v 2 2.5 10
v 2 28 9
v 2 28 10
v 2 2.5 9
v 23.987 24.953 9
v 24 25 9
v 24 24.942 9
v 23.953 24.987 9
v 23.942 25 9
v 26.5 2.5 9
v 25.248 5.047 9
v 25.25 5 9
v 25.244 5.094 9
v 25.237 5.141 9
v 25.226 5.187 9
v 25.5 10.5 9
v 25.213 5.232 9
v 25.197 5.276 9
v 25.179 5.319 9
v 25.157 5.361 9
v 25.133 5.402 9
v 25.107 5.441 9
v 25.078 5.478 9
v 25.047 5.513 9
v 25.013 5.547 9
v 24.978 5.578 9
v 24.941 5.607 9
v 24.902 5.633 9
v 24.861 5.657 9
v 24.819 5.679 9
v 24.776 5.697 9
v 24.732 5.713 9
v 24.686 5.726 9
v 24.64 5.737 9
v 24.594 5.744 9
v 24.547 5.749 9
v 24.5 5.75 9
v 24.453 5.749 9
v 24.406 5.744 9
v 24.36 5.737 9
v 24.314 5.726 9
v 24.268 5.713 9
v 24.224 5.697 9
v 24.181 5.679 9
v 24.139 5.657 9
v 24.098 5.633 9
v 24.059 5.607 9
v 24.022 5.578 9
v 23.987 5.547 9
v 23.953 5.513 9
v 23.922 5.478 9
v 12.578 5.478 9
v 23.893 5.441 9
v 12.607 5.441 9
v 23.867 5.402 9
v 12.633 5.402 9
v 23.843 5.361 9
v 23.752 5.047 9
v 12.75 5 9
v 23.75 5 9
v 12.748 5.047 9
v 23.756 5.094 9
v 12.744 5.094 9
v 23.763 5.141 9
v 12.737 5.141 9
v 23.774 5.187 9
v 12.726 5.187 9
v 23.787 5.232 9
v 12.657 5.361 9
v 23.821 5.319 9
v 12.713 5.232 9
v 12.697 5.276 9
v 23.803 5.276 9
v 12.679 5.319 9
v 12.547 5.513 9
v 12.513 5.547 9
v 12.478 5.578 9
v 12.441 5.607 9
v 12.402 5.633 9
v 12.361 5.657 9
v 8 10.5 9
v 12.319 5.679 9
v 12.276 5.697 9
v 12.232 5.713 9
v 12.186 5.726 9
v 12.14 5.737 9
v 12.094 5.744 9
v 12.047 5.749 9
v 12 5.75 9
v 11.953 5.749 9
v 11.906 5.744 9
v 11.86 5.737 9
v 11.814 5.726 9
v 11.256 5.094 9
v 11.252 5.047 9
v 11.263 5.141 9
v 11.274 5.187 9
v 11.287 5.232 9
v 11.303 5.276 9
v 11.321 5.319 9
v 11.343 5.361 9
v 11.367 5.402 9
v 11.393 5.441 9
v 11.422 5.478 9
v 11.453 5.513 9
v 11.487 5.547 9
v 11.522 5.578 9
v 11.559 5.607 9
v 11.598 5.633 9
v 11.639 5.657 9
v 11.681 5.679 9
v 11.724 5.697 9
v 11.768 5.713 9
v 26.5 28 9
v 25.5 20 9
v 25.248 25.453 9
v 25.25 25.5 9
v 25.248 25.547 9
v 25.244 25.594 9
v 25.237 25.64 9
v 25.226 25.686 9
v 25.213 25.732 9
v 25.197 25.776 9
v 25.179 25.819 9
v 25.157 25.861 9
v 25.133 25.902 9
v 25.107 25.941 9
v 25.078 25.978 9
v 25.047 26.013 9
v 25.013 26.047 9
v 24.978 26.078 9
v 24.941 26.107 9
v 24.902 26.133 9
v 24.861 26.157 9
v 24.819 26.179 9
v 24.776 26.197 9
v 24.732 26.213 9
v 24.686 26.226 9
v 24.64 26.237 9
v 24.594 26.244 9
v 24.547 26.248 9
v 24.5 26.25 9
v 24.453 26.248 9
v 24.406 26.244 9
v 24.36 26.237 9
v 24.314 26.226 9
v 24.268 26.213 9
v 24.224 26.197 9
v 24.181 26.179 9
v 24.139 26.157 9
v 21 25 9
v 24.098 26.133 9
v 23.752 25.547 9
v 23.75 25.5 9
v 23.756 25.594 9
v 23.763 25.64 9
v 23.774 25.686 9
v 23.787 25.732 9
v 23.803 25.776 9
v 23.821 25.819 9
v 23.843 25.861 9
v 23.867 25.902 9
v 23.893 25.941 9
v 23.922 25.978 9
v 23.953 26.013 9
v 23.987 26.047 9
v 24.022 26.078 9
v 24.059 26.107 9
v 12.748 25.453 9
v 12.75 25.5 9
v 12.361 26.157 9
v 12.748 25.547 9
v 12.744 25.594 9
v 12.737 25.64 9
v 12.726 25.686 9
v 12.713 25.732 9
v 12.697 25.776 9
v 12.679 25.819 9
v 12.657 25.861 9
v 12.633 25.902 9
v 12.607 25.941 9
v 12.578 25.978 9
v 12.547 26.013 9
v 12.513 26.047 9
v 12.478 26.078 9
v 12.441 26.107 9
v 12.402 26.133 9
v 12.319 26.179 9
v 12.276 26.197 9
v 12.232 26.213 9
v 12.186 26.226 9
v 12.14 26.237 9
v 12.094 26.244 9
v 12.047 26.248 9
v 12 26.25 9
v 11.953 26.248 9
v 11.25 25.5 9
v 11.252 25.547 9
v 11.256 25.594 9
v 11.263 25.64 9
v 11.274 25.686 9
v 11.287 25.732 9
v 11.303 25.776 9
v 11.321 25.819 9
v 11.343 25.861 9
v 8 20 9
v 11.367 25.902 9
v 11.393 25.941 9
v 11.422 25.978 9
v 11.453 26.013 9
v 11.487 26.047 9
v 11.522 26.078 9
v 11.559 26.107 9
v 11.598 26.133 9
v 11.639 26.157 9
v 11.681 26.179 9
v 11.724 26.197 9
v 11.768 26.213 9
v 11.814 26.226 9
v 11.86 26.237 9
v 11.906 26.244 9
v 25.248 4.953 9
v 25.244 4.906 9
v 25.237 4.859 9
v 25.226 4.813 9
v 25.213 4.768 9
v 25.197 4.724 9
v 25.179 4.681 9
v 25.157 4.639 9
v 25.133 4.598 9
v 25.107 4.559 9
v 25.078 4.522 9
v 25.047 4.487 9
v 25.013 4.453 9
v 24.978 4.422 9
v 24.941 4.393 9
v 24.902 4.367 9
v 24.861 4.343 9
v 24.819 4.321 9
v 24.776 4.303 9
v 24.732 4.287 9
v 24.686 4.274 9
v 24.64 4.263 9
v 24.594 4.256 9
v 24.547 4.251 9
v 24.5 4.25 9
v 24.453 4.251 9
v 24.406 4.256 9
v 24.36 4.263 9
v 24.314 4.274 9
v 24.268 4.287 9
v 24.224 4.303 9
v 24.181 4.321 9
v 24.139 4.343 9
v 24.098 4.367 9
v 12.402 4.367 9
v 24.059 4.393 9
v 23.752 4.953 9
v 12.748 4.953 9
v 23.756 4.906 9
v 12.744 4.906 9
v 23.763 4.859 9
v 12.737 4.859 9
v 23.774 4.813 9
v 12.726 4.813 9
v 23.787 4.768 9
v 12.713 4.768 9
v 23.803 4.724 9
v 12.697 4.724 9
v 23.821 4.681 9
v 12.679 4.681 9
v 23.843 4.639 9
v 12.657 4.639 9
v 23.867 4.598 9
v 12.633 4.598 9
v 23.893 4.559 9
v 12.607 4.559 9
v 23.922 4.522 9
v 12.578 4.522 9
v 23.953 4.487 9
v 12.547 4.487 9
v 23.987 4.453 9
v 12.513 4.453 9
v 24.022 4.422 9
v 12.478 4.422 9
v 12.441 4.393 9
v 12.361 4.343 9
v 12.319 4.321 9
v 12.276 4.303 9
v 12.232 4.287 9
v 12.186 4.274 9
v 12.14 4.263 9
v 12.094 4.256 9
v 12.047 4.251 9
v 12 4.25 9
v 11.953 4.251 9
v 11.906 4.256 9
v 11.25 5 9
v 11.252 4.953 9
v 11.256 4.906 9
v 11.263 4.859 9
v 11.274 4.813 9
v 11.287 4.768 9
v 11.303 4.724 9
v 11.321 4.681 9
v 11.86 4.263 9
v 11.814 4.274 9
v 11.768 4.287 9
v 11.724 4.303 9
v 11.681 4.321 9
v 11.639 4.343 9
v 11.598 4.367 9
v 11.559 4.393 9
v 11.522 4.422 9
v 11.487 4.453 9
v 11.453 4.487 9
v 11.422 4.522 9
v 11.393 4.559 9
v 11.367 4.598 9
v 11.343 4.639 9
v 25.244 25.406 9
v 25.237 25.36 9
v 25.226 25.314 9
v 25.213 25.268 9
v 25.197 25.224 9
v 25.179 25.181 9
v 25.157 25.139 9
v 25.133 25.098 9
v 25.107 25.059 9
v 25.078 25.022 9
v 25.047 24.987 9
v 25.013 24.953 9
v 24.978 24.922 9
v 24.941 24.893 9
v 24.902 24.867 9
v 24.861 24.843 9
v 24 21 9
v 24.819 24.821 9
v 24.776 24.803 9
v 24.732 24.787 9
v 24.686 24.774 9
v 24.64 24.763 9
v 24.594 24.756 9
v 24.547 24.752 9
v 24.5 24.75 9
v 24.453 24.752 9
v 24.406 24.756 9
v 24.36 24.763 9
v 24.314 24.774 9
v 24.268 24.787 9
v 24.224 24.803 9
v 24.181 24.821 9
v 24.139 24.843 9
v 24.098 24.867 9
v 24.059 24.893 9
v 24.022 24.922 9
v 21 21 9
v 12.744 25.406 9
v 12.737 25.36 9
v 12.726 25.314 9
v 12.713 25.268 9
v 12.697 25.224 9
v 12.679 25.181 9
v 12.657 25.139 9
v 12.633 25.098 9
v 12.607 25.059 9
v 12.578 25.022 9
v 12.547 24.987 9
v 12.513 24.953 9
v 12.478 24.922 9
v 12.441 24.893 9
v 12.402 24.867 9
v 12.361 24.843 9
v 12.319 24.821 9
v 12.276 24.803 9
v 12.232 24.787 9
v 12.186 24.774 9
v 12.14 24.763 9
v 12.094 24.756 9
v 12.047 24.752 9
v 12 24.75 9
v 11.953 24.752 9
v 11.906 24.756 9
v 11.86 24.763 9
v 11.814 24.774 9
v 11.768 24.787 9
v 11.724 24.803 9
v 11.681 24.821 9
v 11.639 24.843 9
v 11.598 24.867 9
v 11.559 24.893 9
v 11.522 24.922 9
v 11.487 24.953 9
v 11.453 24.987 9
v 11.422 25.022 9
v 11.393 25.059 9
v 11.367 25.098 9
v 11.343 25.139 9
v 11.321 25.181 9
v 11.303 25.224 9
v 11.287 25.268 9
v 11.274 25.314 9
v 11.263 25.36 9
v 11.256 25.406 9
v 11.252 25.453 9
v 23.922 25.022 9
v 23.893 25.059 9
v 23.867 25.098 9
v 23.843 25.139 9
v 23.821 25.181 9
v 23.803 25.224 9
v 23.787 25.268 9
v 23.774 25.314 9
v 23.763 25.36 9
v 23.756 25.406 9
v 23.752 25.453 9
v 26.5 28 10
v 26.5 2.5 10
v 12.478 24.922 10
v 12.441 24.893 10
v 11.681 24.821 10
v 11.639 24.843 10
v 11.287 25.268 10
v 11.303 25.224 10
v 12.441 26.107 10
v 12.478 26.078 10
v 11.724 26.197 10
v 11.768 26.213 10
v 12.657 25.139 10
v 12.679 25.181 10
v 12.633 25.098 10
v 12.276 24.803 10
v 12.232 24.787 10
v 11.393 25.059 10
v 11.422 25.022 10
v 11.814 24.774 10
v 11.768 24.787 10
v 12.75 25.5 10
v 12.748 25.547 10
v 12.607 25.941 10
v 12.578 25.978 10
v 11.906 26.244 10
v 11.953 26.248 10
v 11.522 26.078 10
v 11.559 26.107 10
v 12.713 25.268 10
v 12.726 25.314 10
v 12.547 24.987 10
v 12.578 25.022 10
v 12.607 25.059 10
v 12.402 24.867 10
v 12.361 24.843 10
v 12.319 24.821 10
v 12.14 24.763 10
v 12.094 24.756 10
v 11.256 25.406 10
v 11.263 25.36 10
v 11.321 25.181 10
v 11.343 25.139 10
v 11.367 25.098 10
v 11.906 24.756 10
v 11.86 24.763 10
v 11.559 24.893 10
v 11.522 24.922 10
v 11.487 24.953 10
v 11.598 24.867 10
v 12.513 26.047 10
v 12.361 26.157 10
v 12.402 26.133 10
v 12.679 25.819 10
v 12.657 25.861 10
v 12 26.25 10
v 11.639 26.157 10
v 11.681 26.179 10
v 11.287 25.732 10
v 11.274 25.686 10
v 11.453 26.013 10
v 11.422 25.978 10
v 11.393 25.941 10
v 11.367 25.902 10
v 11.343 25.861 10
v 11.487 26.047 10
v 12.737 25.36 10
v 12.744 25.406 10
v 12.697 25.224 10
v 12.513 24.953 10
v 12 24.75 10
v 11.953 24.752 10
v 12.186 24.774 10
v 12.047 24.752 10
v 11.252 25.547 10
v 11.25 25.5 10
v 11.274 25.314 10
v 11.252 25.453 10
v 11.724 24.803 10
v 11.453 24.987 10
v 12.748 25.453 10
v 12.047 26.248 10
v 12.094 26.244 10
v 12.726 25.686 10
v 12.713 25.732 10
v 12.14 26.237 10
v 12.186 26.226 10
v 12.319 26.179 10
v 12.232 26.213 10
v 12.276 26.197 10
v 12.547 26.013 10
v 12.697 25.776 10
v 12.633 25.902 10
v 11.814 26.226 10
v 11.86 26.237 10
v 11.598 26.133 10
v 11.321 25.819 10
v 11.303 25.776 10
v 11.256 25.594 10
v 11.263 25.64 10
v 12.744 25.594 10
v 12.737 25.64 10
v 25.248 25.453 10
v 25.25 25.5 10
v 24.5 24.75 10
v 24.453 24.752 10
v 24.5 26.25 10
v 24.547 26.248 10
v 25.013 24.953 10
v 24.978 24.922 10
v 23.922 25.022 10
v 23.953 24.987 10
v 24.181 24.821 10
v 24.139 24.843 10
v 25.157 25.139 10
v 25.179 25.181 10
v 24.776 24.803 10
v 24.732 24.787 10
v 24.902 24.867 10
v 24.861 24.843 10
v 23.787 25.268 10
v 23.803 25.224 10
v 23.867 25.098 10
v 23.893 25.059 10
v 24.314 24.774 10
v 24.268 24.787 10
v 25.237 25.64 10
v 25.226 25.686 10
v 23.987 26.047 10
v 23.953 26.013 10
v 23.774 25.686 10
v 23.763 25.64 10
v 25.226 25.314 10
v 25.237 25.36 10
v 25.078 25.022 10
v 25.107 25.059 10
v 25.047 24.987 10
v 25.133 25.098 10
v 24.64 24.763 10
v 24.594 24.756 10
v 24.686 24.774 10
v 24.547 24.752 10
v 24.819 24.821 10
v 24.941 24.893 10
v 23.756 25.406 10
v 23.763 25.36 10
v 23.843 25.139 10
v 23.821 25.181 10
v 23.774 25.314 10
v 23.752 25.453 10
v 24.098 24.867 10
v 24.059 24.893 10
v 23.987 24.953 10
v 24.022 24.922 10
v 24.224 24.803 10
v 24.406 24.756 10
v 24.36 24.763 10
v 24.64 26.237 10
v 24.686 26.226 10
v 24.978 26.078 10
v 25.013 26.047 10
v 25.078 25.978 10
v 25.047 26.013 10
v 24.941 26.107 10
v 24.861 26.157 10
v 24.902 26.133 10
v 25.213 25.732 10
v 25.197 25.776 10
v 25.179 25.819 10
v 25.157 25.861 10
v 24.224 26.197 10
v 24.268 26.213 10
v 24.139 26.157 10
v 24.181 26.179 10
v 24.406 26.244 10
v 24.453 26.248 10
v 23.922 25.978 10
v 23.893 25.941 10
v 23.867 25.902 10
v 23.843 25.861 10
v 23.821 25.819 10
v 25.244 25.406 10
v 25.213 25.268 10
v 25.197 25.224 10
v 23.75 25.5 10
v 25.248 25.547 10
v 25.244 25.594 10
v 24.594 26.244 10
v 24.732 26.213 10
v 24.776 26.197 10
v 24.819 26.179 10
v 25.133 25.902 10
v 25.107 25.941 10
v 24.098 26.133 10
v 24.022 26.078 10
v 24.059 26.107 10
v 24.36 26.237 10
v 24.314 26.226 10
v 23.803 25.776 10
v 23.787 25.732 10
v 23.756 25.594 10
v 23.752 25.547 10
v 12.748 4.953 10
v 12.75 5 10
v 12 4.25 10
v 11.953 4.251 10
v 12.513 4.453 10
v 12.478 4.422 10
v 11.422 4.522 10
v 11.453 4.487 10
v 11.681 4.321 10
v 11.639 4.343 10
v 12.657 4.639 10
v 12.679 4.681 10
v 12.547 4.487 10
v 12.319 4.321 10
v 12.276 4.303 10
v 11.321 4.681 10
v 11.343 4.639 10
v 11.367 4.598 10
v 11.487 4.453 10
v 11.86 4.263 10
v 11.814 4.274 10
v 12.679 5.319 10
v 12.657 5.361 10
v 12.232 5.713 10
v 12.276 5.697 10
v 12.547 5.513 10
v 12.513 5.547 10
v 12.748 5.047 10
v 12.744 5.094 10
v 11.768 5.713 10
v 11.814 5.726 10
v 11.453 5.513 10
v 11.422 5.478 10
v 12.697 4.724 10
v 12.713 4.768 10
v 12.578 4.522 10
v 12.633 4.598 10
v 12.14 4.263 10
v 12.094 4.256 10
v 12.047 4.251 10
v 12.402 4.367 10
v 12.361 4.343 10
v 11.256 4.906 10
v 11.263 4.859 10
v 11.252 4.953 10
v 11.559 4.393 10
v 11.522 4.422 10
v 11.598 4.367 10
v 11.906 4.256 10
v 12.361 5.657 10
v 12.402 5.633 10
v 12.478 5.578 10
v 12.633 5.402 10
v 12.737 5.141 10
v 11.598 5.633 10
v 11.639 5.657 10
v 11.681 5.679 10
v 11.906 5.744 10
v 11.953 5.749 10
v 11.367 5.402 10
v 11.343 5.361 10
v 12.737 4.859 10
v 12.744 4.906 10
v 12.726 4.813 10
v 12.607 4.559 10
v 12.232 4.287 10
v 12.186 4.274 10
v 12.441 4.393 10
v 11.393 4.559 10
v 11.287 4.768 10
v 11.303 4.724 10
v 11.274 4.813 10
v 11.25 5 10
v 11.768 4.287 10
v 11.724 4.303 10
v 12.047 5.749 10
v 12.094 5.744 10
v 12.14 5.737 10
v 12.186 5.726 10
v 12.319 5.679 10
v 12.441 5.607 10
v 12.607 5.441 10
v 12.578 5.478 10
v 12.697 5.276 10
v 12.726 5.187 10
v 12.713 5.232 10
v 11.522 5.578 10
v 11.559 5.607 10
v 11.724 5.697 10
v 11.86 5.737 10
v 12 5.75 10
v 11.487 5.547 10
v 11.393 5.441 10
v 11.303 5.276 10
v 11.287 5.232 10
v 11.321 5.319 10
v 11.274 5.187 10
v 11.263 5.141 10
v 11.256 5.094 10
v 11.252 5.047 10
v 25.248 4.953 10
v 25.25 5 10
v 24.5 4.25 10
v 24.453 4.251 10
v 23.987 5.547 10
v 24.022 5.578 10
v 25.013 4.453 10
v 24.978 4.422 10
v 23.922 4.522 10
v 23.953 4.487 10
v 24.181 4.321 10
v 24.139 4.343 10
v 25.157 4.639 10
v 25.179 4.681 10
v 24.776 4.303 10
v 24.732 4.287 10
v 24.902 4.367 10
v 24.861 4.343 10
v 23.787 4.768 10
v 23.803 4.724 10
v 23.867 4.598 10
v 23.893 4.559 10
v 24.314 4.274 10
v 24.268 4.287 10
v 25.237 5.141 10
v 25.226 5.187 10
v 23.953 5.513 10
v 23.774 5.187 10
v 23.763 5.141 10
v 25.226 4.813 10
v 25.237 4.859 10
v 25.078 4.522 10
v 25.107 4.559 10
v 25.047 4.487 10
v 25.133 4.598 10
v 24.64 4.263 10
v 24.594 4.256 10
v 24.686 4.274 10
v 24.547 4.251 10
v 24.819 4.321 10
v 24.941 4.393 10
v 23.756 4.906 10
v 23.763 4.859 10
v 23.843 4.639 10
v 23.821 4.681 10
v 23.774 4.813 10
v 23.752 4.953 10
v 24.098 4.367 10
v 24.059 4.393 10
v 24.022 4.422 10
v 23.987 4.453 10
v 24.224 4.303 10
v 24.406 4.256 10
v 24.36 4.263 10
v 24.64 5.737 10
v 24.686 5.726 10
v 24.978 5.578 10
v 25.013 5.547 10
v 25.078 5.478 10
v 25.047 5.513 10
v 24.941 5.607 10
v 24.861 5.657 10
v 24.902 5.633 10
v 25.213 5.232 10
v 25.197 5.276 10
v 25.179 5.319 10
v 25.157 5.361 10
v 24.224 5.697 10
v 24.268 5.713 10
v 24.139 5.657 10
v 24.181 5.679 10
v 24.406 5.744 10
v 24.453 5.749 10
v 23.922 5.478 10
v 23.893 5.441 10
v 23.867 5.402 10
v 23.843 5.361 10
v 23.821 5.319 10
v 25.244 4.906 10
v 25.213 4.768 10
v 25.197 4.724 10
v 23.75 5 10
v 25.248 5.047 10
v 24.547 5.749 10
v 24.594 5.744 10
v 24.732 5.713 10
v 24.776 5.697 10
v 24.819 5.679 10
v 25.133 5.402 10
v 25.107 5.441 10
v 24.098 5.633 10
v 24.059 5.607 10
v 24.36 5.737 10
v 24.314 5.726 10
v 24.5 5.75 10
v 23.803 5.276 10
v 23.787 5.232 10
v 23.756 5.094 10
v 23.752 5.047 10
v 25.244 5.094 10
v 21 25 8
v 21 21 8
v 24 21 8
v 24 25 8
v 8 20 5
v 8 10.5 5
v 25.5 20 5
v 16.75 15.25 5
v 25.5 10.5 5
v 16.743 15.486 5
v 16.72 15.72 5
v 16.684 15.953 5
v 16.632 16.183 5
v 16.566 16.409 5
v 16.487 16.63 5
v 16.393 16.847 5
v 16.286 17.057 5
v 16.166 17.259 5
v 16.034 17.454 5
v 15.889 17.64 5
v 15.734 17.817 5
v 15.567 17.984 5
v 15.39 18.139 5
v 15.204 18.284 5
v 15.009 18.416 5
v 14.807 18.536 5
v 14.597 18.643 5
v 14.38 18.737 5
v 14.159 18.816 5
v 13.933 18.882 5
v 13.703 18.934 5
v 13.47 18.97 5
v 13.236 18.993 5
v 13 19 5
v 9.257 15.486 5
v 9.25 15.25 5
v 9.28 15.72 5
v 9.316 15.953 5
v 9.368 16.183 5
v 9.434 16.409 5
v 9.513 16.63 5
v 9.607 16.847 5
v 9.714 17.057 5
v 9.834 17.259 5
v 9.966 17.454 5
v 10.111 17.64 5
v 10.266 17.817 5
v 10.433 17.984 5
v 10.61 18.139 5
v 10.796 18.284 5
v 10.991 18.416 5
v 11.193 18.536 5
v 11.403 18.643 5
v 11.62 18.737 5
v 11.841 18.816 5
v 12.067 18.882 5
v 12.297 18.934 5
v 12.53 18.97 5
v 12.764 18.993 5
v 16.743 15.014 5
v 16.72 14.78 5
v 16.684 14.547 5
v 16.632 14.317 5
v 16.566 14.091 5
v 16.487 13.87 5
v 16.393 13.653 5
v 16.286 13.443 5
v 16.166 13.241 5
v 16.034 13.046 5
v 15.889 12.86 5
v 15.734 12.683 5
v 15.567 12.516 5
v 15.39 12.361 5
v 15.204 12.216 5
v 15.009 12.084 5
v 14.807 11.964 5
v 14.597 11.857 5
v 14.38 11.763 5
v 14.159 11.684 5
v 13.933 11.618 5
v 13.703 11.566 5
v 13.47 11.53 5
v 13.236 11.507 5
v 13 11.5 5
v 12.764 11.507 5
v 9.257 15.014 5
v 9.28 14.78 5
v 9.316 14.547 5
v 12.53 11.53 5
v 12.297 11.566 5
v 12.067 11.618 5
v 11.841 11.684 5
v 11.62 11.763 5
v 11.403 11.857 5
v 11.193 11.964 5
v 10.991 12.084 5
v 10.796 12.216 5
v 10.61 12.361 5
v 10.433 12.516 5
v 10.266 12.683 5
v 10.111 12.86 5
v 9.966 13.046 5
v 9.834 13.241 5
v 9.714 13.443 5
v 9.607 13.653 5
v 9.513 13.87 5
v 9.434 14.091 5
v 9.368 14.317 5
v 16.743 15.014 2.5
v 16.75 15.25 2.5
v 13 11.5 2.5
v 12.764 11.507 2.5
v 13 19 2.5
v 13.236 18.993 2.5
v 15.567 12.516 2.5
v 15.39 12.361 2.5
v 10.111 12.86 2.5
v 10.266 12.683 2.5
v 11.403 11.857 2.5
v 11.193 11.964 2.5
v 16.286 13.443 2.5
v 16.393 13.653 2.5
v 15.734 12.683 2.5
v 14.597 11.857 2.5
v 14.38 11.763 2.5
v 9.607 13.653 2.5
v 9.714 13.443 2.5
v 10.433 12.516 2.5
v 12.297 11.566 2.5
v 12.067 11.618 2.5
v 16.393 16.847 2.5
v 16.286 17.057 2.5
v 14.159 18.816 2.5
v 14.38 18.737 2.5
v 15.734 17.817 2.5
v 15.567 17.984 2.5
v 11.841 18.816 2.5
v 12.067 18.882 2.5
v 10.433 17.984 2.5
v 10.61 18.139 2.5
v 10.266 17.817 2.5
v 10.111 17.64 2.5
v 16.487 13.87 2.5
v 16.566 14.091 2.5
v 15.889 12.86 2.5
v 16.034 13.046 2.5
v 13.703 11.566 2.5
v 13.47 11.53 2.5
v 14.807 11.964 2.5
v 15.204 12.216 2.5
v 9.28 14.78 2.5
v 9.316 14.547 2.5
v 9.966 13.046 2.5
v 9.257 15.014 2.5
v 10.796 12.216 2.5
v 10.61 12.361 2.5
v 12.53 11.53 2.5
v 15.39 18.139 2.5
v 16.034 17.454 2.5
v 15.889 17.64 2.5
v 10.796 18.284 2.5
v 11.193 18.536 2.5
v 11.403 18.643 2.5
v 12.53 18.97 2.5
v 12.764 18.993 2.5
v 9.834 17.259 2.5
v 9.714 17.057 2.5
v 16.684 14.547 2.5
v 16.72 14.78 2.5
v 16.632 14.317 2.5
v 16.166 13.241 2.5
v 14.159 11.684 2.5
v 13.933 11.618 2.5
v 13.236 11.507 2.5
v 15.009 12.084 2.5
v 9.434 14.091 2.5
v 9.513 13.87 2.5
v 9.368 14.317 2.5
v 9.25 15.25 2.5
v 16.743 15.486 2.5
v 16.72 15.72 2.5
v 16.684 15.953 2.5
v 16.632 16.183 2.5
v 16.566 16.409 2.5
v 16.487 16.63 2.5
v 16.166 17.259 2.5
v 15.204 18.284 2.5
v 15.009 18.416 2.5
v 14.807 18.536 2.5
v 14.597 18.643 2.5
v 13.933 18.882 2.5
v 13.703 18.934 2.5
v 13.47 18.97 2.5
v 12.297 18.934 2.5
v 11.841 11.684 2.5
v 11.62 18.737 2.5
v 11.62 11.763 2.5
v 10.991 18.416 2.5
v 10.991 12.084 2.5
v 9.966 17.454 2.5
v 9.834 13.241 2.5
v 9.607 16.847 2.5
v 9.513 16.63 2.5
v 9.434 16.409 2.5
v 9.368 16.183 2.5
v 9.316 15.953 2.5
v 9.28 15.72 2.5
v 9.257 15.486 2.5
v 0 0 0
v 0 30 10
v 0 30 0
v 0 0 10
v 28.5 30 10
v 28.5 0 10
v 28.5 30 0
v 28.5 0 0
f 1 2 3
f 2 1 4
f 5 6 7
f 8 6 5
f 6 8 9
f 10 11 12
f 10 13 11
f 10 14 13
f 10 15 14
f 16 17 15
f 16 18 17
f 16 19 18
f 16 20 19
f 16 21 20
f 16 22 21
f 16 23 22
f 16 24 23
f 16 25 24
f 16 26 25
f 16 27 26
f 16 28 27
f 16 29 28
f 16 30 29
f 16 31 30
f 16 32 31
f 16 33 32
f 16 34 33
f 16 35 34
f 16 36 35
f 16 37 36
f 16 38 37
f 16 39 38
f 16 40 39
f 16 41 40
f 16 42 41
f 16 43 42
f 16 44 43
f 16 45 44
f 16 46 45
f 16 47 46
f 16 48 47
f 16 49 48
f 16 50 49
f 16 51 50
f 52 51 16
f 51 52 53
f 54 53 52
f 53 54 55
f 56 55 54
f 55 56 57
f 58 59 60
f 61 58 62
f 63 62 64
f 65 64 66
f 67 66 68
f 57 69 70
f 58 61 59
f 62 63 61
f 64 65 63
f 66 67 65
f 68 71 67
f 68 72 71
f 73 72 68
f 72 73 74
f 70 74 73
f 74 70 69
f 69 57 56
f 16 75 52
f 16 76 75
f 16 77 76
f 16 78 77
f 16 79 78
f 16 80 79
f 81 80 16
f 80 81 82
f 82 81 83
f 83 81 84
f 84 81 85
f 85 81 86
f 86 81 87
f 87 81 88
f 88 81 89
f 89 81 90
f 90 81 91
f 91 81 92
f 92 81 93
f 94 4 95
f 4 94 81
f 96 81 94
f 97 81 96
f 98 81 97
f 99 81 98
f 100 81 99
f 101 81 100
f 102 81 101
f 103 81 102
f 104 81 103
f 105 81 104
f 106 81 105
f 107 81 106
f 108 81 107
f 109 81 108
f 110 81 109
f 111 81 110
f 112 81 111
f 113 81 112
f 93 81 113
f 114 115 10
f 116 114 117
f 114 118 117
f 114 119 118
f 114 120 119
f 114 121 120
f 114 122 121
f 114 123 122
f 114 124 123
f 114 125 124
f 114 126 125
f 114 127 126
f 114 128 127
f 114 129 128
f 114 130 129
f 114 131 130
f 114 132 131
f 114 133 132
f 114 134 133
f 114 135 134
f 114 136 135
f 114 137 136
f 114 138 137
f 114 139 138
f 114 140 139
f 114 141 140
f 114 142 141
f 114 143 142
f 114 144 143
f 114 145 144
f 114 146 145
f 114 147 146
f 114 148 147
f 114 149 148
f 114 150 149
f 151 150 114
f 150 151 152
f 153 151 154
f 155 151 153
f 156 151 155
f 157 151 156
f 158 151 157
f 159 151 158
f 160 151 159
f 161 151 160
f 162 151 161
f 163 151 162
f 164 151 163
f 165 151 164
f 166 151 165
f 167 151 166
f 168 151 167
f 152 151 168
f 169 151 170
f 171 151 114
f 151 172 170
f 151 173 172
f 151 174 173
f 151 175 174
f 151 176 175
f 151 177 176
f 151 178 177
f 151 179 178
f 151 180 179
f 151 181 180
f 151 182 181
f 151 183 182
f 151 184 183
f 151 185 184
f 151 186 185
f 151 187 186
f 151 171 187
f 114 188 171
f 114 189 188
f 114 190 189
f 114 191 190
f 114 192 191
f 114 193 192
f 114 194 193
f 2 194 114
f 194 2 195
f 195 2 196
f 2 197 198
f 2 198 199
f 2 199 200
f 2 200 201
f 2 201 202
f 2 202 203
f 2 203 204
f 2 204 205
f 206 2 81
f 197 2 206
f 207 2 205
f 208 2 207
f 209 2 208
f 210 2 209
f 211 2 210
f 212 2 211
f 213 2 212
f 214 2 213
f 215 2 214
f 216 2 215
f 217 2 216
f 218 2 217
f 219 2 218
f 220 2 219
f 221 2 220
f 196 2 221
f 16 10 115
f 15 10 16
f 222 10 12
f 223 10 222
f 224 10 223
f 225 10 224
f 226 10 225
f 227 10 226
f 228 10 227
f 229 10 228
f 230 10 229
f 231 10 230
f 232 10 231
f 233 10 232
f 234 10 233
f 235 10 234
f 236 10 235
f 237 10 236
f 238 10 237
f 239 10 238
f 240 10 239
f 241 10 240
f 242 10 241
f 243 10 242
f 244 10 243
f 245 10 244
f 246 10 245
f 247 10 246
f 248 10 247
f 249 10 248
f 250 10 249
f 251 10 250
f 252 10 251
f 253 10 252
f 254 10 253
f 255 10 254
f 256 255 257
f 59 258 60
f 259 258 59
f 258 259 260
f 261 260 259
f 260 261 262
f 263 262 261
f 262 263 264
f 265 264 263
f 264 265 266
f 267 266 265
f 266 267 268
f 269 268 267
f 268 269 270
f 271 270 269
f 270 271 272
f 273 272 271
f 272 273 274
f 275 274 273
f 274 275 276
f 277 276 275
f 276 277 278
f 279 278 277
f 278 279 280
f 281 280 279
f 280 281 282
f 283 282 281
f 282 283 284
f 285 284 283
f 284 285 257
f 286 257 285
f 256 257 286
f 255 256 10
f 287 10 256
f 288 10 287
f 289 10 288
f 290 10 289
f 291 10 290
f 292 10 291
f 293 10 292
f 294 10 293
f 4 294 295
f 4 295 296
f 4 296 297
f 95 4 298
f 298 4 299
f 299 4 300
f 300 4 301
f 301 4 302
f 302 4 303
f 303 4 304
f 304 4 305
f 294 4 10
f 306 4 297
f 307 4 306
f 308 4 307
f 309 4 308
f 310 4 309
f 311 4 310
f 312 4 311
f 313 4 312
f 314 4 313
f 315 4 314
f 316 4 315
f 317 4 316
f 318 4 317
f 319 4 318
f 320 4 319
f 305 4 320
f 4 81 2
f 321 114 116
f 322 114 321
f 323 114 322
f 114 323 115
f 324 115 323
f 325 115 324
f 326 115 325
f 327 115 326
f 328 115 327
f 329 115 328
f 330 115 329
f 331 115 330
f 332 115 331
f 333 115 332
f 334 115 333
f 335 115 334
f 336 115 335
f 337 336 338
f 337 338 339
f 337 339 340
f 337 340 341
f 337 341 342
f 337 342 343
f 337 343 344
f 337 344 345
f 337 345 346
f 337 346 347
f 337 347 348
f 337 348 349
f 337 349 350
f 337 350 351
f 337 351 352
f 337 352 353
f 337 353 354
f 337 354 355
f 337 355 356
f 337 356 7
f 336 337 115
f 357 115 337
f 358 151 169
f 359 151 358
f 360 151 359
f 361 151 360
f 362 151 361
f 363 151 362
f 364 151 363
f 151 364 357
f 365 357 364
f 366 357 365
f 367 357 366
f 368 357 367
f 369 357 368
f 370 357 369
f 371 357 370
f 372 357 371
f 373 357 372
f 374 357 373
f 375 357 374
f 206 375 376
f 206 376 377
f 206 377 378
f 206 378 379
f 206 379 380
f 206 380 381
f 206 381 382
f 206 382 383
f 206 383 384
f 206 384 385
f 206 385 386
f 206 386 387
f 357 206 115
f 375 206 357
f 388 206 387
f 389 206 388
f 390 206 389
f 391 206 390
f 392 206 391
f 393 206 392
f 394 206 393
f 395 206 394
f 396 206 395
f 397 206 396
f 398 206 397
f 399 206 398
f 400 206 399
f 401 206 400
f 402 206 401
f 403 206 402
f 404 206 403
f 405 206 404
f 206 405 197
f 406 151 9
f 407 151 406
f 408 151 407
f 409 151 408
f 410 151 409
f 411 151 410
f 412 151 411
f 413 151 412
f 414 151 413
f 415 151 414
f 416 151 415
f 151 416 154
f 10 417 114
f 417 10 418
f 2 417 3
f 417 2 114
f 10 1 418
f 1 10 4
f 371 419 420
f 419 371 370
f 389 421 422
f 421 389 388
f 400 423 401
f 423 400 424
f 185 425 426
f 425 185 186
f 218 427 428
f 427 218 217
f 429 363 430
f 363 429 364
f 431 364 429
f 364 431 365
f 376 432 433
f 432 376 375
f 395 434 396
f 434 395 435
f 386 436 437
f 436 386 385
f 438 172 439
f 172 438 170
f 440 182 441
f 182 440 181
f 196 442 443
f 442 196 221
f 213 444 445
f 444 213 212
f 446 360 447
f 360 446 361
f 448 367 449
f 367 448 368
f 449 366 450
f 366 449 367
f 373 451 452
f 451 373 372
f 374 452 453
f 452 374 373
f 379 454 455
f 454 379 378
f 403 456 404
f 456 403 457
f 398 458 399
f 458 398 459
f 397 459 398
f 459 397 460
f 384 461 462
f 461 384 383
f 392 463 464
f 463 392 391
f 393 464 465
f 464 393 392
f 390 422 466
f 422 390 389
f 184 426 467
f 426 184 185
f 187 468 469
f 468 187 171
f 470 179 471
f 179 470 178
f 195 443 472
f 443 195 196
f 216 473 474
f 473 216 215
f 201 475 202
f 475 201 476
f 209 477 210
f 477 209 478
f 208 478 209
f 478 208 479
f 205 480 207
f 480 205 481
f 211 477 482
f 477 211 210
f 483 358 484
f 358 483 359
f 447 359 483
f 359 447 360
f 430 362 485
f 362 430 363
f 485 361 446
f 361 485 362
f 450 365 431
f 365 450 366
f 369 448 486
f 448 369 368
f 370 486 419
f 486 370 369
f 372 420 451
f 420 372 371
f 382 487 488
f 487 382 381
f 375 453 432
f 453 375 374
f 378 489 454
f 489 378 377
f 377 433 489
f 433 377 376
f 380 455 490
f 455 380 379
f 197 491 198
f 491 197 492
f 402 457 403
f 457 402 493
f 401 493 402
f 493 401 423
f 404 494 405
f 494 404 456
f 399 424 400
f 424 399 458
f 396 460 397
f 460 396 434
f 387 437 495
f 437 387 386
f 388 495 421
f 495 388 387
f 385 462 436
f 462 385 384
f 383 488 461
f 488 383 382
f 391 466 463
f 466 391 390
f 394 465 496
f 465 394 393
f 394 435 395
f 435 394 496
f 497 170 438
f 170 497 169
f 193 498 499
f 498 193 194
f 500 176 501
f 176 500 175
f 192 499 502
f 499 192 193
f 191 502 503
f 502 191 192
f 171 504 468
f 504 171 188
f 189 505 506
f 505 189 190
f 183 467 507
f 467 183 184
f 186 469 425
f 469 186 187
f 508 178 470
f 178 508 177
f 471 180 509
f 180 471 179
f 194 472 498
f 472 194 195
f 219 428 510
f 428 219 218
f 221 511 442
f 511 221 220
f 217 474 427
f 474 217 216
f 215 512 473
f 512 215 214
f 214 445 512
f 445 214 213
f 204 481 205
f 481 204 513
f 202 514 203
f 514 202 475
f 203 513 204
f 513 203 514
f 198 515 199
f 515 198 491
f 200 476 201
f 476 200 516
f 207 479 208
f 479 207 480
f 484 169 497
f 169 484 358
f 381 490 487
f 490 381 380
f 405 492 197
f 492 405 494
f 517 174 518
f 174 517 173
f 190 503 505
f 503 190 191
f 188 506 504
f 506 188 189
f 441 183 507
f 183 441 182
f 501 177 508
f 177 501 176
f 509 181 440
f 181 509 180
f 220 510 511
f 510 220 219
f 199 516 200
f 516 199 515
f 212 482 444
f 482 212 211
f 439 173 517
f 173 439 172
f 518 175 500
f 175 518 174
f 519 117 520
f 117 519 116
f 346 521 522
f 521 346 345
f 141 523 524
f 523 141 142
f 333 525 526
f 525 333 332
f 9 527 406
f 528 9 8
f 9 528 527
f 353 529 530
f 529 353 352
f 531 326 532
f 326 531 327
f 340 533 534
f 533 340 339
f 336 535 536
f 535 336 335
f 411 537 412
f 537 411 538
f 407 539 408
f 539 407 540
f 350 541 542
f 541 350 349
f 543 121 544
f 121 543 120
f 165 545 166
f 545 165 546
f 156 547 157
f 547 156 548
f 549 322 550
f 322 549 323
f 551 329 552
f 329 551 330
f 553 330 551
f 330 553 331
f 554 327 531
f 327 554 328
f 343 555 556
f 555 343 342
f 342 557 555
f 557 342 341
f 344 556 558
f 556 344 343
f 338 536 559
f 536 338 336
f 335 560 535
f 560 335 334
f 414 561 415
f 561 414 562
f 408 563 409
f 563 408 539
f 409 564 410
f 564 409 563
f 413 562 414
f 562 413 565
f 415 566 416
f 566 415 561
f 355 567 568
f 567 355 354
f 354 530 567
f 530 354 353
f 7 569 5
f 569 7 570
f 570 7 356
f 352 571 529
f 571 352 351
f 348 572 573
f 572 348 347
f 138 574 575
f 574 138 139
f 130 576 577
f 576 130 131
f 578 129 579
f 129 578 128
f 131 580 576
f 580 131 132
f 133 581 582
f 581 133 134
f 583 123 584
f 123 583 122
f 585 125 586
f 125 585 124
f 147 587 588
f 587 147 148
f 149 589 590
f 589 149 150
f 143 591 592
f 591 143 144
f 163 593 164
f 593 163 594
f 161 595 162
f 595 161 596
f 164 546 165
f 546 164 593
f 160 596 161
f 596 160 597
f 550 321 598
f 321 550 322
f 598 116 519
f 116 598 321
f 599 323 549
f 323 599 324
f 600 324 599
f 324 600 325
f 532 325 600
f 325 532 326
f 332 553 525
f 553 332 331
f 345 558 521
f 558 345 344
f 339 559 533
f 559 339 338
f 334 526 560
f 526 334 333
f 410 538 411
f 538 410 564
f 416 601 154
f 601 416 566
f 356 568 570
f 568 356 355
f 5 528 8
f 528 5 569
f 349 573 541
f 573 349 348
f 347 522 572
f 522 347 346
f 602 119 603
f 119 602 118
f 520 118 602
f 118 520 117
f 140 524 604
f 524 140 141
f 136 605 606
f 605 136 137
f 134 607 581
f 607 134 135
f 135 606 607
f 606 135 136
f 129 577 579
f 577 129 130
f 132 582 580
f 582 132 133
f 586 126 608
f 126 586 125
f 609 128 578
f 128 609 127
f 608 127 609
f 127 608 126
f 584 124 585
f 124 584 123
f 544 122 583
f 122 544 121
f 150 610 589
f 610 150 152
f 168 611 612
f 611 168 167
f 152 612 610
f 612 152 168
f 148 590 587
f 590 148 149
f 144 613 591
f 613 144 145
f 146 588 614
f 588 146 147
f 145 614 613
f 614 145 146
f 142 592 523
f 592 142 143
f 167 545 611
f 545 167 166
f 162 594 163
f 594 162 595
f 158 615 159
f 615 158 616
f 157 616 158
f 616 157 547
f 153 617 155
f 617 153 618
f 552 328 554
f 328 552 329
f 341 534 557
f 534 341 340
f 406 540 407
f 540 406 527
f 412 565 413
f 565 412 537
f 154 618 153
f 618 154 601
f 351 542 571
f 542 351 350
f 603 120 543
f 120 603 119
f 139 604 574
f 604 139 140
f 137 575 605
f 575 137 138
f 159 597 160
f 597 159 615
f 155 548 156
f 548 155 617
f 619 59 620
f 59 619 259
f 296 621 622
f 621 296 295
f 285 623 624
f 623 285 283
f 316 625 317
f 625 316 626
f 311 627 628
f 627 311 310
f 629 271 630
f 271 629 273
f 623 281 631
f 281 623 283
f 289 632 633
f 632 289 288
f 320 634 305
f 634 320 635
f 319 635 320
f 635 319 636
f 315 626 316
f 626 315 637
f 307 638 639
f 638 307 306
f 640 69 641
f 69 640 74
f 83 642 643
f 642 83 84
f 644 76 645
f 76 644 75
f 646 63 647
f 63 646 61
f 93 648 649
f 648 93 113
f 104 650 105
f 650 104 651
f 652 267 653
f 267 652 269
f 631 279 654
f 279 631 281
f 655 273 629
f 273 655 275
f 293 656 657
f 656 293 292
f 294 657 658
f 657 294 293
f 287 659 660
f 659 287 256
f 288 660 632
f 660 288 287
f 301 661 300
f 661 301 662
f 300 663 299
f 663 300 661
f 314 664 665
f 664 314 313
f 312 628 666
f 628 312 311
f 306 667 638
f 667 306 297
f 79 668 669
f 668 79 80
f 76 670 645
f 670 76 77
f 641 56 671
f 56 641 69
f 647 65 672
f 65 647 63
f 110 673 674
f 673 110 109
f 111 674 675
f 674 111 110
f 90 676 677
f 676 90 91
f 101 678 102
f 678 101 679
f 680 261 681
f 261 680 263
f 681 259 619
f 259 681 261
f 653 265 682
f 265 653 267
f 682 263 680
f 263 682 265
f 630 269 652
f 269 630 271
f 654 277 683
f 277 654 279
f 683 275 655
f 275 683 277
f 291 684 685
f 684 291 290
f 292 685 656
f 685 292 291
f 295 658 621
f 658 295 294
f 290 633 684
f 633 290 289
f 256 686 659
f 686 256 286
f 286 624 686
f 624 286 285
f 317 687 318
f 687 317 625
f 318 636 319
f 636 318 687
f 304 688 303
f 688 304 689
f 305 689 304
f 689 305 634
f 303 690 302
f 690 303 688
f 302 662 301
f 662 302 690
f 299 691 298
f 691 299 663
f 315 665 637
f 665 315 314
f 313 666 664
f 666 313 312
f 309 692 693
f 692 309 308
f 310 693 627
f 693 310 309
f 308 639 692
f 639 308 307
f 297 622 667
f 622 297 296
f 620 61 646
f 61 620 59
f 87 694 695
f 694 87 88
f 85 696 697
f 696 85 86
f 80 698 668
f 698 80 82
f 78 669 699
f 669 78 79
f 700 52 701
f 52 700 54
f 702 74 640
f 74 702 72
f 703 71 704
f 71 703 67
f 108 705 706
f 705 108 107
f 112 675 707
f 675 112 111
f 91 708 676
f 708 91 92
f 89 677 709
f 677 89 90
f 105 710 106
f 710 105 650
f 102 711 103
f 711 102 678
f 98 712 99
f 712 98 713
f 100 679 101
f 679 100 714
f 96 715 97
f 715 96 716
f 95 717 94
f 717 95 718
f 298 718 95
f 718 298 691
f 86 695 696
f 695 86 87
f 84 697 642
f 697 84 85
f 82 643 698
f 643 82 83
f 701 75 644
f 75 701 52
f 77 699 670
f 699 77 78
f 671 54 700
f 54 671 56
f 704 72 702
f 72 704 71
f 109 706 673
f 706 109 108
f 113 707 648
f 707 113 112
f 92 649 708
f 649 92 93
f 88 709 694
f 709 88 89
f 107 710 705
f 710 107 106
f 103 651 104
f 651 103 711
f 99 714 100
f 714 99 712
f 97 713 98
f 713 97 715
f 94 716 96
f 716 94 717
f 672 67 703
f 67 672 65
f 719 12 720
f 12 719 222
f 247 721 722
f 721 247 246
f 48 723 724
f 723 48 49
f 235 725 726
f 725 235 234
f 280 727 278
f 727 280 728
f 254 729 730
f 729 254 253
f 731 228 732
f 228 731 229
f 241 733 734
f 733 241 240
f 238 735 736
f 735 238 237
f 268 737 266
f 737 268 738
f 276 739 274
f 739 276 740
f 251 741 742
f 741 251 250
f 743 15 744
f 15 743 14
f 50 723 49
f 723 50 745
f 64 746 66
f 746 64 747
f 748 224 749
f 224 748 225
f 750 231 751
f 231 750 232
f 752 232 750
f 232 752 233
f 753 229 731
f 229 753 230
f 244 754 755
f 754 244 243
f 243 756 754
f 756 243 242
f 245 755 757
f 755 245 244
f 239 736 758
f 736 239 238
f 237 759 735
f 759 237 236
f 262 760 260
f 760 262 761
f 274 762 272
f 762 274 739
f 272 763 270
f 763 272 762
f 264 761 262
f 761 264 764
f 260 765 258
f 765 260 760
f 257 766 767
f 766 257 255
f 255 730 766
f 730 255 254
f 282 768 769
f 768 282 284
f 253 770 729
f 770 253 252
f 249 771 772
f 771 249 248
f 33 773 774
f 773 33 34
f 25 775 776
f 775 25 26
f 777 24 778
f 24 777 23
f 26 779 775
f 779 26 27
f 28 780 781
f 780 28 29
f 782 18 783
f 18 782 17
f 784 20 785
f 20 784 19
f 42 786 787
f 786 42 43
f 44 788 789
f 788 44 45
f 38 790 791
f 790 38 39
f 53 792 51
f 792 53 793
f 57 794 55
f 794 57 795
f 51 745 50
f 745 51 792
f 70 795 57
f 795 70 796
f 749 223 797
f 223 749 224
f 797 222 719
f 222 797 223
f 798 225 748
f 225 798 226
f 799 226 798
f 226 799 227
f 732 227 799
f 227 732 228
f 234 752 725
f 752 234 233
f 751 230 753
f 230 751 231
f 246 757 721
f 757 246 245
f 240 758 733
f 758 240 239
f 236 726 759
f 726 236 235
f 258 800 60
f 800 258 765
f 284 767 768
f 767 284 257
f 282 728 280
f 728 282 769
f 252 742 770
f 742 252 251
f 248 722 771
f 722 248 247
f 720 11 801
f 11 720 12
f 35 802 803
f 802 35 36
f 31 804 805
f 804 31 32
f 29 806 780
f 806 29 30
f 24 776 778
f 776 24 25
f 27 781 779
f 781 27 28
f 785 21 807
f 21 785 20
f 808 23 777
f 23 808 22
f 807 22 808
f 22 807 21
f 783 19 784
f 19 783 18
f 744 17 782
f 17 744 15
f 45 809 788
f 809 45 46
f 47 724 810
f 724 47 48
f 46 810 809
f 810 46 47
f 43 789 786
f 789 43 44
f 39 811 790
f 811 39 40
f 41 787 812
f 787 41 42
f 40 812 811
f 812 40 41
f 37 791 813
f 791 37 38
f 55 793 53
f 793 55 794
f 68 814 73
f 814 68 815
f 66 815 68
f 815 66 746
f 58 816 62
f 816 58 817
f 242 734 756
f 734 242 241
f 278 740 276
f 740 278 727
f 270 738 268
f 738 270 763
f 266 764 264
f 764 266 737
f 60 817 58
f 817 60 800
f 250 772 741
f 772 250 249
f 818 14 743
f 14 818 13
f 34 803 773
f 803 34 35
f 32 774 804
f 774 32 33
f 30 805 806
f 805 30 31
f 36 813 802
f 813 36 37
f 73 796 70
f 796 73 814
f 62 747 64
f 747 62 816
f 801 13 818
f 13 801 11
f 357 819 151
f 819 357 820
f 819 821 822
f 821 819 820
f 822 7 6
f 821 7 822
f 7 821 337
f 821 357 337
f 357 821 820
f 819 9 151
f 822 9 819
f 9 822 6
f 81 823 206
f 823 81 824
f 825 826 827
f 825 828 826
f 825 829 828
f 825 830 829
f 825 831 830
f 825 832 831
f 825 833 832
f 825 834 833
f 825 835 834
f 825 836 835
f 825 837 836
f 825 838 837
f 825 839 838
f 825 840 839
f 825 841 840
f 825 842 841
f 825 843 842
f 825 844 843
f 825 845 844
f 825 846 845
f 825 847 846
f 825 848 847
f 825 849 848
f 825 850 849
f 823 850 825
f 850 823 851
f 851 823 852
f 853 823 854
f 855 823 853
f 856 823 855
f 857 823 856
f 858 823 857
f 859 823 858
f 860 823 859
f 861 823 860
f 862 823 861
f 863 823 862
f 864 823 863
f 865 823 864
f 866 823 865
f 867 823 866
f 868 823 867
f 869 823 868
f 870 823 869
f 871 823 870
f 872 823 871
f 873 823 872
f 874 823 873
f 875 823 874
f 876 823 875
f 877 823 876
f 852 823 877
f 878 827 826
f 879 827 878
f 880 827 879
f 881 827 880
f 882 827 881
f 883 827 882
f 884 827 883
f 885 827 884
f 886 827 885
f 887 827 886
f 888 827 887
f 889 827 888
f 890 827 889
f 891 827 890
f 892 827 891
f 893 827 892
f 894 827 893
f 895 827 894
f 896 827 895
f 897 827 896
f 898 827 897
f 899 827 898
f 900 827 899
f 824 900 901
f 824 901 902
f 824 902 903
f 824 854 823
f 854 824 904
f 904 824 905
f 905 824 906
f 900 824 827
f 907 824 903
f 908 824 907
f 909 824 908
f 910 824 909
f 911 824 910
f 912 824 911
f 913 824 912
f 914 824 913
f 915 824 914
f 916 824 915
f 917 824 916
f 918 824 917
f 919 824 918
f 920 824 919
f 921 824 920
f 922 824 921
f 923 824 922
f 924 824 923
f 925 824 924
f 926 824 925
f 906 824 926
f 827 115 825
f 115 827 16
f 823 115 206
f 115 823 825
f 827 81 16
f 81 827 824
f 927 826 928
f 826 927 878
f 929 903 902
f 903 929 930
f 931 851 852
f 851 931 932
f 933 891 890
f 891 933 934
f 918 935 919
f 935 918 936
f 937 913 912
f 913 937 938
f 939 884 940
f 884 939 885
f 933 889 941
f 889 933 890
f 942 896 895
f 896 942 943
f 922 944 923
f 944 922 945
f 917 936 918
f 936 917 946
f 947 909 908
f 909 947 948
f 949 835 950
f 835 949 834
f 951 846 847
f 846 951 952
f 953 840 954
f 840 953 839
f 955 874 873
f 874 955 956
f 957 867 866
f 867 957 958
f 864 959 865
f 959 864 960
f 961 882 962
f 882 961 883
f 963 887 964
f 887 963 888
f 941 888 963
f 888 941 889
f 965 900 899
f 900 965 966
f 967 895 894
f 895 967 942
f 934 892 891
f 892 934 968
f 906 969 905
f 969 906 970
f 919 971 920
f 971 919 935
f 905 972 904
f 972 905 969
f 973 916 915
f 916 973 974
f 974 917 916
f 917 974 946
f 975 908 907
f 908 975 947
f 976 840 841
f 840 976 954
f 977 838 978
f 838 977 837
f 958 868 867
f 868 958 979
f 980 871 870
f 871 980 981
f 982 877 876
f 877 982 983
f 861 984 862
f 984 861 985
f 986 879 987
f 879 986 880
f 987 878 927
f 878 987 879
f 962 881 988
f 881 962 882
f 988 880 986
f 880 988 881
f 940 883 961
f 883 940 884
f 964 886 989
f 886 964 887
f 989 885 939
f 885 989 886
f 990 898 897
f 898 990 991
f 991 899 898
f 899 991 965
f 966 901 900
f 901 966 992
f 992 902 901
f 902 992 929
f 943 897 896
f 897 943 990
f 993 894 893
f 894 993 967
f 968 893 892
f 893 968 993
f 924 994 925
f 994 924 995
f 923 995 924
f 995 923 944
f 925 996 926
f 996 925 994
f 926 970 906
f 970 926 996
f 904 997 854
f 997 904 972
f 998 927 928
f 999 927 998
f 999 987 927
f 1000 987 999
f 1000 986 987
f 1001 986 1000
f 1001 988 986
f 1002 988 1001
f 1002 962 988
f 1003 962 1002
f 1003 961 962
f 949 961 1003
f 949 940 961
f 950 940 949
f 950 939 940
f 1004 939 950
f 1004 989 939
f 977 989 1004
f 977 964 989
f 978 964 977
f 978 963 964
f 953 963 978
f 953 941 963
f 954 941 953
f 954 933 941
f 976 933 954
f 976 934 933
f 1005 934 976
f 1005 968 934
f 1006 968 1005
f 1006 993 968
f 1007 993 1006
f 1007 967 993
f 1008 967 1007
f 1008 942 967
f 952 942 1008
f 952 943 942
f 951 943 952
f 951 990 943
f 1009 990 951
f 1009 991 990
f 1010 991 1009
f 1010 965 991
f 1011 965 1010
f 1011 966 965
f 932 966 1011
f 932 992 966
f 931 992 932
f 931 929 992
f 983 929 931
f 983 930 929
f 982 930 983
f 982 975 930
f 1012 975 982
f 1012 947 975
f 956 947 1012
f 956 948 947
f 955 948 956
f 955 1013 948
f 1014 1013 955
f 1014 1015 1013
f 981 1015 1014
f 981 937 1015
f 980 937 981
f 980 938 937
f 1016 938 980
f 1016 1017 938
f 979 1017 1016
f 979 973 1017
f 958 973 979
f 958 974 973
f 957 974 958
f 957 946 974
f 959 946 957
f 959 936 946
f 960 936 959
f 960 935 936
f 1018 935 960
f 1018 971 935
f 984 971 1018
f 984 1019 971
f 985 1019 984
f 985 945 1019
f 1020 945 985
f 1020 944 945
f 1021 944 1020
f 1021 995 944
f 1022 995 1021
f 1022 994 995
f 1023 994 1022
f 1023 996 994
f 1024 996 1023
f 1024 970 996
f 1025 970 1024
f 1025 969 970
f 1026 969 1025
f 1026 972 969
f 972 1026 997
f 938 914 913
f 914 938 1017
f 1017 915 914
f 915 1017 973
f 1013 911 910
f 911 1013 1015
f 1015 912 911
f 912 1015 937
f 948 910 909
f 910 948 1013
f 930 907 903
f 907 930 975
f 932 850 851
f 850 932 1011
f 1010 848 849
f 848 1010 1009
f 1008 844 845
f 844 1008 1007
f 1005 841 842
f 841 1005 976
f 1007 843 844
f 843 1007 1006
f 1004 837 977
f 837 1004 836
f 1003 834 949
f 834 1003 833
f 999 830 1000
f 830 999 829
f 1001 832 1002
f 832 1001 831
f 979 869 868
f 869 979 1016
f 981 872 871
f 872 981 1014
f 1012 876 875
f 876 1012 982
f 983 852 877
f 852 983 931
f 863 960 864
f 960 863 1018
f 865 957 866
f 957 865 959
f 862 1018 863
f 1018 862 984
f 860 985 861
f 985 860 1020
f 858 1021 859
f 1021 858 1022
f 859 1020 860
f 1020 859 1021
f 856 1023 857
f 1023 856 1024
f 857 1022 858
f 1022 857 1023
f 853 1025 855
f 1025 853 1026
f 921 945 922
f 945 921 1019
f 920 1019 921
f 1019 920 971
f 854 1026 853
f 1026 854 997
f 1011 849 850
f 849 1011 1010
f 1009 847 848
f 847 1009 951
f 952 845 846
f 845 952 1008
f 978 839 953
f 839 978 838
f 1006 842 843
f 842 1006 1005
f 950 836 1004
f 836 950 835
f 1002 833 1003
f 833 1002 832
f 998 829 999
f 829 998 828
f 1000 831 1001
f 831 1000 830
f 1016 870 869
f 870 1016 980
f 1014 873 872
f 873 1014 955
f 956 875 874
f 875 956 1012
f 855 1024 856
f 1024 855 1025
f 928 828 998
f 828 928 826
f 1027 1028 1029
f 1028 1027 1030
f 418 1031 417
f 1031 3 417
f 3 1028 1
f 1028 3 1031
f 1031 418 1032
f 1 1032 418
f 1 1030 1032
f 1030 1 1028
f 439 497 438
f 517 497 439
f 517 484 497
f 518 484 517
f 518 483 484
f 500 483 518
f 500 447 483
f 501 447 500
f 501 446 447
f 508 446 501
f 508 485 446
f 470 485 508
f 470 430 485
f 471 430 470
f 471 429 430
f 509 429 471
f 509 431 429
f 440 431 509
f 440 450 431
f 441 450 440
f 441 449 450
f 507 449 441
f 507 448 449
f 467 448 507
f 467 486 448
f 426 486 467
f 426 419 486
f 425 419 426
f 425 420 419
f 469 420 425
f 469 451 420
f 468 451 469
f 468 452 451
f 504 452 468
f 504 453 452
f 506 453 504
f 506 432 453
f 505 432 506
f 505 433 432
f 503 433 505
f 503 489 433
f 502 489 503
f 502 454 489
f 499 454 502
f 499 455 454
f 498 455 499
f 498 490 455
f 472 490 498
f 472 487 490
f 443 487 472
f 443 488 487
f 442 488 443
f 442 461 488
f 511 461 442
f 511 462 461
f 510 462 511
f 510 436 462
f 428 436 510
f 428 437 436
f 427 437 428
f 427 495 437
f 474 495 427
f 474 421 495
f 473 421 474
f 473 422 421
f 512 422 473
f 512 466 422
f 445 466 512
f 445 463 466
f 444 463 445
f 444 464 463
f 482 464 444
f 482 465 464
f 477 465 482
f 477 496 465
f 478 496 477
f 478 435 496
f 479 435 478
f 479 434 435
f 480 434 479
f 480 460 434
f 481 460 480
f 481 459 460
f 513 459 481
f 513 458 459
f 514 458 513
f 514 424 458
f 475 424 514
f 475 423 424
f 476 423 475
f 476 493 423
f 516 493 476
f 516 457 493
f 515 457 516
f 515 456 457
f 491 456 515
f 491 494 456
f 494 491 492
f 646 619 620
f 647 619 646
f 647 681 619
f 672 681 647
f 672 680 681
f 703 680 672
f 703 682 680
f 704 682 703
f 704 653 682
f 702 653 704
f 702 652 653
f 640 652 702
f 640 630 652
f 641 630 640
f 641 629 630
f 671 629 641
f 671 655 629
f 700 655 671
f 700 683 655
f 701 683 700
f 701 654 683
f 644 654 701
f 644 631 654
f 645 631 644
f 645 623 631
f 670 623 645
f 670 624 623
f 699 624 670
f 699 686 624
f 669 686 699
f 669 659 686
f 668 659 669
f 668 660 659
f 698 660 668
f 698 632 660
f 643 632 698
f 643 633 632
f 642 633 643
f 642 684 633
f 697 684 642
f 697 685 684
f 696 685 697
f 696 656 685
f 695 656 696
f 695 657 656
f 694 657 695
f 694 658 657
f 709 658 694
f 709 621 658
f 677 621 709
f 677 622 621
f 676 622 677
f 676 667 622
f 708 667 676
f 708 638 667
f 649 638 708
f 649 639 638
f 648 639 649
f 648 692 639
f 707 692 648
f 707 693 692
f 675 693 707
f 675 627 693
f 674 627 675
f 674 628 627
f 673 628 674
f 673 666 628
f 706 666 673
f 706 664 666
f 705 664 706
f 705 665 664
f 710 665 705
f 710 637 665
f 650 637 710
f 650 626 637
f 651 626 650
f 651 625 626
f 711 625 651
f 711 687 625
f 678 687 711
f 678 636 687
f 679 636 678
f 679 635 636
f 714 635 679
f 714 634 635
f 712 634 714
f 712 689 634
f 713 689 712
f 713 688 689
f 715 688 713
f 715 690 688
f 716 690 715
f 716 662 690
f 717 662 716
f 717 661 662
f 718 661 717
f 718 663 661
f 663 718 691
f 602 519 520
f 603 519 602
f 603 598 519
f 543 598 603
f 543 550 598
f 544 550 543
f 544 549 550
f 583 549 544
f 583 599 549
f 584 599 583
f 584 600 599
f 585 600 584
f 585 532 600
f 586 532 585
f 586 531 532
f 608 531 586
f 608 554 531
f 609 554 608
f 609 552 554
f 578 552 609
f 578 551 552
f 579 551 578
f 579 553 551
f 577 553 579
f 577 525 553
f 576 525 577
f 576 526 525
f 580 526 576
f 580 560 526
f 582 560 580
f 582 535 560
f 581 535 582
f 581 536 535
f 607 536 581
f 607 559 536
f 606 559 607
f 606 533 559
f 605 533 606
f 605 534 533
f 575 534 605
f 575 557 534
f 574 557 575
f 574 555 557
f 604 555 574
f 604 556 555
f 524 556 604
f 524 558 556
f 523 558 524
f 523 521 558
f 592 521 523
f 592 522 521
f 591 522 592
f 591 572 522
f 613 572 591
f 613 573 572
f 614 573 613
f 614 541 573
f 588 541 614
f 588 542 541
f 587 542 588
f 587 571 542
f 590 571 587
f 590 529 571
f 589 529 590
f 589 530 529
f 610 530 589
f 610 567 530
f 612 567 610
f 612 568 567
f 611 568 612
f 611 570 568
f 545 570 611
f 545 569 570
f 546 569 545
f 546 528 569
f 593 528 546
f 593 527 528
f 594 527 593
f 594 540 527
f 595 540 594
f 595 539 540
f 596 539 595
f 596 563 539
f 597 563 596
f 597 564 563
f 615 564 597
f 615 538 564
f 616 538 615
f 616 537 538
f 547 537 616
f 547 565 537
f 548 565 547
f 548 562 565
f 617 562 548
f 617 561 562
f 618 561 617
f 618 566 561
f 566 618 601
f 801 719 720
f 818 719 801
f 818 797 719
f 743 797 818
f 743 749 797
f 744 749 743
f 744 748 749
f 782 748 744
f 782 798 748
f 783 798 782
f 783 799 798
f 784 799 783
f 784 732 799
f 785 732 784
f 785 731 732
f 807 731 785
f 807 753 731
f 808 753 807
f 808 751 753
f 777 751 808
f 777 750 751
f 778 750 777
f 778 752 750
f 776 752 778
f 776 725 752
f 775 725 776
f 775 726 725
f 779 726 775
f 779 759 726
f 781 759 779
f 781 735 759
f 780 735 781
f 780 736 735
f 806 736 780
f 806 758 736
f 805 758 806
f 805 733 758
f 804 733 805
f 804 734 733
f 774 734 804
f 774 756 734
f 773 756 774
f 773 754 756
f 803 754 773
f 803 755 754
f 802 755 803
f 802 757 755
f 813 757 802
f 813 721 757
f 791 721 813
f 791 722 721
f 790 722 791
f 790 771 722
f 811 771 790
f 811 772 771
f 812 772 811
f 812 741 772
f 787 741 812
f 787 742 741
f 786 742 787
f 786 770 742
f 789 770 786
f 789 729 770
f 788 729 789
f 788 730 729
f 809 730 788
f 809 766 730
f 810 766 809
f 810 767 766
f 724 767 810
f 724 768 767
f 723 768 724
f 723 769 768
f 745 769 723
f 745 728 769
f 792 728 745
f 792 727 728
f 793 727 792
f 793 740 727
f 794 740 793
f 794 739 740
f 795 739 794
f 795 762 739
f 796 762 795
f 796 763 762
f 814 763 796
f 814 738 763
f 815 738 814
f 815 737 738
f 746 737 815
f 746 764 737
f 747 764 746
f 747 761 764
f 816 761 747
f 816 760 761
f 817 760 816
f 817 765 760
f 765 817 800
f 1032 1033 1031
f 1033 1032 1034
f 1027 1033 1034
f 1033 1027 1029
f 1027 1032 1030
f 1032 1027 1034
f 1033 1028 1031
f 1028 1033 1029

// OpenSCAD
// file: pi_cam.scad
pcb_width = 24.5;
pcb_depth = 25.5;
pcb_height = 1;
pcb_hole_rad = 1.50 / 2;
pcb_hole_edge = 2.5;
peg_left_offset = 10;
peg_distance = 12.5;
cam_block_offset = 6;
cam_block_width = 17.5;
cam_block_depth = 9.5;
cam_block_height = 4;
lens_offset = 11;
lens_rad = 7.5 / 2;
lens_height = 2.5;
led_cutout_offset_x = 19;
led_cutout_offset_y = 3;
led_cutout_offset_z = 1;
led_cutout_width = 3;
led_cutout_depth = 4;
led_cutout_height = 1;

module pi_cam()
{
    difference()
    {
        cube([pcb_width, pcb_depth, pcb_height]);
    
        // PCB-peg left-under.
        translate([peg_left_offset, pcb_hole_edge, 0])
        {
            cylinder(h = pcb_height, r = pcb_hole_rad, center = false, $fn = 100);
        }

        // PCB-peg right-under.        
        translate([peg_left_offset + peg_distance, pcb_hole_edge, 0])
        {
            cylinder(h = pcb_height, r = pcb_hole_rad, center = false, $fn = 100);
        }
            
        // PCB-peg left-top.
        translate([peg_left_offset, pcb_depth - pcb_hole_edge, 0])
        {
            cylinder(h = pcb_height, r = pcb_hole_rad, center = false, $fn = 100);
        }

        // PCB-peg right-top.
        translate([peg_left_offset + peg_distance, pcb_depth - pcb_hole_edge, 0])
        {
            cylinder(h = pcb_height, r = pcb_hole_rad, center = false, $fn = 100);
        }
    }
    

    
    // LED cut-out.
    translate([led_cutout_offset_x, led_cutout_offset_y, pcb_height])
    {
        cube([led_cutout_width, led_cutout_depth, led_cutout_height]);
    }
    
    translate([cam_block_offset, (pcb_depth - cam_block_depth) / 2, pcb_height])
    {
        cube([cam_block_width, cam_block_depth, cam_block_height]);
    }
    
    translate([lens_offset, pcb_depth / 2, pcb_height + cam_block_height])
    {
        cylinder(h = lens_height, r = lens_rad, center = false, $fn = 100);
    }

}
// main file
include <pi_cam.scad>;

difference()
{
    cube([28.5, 30, 10]);
    
    translate([2, 28, 10])
    {
        rotate([180, 0, 0])
        {
            pi_cam();
        }
    }

}
